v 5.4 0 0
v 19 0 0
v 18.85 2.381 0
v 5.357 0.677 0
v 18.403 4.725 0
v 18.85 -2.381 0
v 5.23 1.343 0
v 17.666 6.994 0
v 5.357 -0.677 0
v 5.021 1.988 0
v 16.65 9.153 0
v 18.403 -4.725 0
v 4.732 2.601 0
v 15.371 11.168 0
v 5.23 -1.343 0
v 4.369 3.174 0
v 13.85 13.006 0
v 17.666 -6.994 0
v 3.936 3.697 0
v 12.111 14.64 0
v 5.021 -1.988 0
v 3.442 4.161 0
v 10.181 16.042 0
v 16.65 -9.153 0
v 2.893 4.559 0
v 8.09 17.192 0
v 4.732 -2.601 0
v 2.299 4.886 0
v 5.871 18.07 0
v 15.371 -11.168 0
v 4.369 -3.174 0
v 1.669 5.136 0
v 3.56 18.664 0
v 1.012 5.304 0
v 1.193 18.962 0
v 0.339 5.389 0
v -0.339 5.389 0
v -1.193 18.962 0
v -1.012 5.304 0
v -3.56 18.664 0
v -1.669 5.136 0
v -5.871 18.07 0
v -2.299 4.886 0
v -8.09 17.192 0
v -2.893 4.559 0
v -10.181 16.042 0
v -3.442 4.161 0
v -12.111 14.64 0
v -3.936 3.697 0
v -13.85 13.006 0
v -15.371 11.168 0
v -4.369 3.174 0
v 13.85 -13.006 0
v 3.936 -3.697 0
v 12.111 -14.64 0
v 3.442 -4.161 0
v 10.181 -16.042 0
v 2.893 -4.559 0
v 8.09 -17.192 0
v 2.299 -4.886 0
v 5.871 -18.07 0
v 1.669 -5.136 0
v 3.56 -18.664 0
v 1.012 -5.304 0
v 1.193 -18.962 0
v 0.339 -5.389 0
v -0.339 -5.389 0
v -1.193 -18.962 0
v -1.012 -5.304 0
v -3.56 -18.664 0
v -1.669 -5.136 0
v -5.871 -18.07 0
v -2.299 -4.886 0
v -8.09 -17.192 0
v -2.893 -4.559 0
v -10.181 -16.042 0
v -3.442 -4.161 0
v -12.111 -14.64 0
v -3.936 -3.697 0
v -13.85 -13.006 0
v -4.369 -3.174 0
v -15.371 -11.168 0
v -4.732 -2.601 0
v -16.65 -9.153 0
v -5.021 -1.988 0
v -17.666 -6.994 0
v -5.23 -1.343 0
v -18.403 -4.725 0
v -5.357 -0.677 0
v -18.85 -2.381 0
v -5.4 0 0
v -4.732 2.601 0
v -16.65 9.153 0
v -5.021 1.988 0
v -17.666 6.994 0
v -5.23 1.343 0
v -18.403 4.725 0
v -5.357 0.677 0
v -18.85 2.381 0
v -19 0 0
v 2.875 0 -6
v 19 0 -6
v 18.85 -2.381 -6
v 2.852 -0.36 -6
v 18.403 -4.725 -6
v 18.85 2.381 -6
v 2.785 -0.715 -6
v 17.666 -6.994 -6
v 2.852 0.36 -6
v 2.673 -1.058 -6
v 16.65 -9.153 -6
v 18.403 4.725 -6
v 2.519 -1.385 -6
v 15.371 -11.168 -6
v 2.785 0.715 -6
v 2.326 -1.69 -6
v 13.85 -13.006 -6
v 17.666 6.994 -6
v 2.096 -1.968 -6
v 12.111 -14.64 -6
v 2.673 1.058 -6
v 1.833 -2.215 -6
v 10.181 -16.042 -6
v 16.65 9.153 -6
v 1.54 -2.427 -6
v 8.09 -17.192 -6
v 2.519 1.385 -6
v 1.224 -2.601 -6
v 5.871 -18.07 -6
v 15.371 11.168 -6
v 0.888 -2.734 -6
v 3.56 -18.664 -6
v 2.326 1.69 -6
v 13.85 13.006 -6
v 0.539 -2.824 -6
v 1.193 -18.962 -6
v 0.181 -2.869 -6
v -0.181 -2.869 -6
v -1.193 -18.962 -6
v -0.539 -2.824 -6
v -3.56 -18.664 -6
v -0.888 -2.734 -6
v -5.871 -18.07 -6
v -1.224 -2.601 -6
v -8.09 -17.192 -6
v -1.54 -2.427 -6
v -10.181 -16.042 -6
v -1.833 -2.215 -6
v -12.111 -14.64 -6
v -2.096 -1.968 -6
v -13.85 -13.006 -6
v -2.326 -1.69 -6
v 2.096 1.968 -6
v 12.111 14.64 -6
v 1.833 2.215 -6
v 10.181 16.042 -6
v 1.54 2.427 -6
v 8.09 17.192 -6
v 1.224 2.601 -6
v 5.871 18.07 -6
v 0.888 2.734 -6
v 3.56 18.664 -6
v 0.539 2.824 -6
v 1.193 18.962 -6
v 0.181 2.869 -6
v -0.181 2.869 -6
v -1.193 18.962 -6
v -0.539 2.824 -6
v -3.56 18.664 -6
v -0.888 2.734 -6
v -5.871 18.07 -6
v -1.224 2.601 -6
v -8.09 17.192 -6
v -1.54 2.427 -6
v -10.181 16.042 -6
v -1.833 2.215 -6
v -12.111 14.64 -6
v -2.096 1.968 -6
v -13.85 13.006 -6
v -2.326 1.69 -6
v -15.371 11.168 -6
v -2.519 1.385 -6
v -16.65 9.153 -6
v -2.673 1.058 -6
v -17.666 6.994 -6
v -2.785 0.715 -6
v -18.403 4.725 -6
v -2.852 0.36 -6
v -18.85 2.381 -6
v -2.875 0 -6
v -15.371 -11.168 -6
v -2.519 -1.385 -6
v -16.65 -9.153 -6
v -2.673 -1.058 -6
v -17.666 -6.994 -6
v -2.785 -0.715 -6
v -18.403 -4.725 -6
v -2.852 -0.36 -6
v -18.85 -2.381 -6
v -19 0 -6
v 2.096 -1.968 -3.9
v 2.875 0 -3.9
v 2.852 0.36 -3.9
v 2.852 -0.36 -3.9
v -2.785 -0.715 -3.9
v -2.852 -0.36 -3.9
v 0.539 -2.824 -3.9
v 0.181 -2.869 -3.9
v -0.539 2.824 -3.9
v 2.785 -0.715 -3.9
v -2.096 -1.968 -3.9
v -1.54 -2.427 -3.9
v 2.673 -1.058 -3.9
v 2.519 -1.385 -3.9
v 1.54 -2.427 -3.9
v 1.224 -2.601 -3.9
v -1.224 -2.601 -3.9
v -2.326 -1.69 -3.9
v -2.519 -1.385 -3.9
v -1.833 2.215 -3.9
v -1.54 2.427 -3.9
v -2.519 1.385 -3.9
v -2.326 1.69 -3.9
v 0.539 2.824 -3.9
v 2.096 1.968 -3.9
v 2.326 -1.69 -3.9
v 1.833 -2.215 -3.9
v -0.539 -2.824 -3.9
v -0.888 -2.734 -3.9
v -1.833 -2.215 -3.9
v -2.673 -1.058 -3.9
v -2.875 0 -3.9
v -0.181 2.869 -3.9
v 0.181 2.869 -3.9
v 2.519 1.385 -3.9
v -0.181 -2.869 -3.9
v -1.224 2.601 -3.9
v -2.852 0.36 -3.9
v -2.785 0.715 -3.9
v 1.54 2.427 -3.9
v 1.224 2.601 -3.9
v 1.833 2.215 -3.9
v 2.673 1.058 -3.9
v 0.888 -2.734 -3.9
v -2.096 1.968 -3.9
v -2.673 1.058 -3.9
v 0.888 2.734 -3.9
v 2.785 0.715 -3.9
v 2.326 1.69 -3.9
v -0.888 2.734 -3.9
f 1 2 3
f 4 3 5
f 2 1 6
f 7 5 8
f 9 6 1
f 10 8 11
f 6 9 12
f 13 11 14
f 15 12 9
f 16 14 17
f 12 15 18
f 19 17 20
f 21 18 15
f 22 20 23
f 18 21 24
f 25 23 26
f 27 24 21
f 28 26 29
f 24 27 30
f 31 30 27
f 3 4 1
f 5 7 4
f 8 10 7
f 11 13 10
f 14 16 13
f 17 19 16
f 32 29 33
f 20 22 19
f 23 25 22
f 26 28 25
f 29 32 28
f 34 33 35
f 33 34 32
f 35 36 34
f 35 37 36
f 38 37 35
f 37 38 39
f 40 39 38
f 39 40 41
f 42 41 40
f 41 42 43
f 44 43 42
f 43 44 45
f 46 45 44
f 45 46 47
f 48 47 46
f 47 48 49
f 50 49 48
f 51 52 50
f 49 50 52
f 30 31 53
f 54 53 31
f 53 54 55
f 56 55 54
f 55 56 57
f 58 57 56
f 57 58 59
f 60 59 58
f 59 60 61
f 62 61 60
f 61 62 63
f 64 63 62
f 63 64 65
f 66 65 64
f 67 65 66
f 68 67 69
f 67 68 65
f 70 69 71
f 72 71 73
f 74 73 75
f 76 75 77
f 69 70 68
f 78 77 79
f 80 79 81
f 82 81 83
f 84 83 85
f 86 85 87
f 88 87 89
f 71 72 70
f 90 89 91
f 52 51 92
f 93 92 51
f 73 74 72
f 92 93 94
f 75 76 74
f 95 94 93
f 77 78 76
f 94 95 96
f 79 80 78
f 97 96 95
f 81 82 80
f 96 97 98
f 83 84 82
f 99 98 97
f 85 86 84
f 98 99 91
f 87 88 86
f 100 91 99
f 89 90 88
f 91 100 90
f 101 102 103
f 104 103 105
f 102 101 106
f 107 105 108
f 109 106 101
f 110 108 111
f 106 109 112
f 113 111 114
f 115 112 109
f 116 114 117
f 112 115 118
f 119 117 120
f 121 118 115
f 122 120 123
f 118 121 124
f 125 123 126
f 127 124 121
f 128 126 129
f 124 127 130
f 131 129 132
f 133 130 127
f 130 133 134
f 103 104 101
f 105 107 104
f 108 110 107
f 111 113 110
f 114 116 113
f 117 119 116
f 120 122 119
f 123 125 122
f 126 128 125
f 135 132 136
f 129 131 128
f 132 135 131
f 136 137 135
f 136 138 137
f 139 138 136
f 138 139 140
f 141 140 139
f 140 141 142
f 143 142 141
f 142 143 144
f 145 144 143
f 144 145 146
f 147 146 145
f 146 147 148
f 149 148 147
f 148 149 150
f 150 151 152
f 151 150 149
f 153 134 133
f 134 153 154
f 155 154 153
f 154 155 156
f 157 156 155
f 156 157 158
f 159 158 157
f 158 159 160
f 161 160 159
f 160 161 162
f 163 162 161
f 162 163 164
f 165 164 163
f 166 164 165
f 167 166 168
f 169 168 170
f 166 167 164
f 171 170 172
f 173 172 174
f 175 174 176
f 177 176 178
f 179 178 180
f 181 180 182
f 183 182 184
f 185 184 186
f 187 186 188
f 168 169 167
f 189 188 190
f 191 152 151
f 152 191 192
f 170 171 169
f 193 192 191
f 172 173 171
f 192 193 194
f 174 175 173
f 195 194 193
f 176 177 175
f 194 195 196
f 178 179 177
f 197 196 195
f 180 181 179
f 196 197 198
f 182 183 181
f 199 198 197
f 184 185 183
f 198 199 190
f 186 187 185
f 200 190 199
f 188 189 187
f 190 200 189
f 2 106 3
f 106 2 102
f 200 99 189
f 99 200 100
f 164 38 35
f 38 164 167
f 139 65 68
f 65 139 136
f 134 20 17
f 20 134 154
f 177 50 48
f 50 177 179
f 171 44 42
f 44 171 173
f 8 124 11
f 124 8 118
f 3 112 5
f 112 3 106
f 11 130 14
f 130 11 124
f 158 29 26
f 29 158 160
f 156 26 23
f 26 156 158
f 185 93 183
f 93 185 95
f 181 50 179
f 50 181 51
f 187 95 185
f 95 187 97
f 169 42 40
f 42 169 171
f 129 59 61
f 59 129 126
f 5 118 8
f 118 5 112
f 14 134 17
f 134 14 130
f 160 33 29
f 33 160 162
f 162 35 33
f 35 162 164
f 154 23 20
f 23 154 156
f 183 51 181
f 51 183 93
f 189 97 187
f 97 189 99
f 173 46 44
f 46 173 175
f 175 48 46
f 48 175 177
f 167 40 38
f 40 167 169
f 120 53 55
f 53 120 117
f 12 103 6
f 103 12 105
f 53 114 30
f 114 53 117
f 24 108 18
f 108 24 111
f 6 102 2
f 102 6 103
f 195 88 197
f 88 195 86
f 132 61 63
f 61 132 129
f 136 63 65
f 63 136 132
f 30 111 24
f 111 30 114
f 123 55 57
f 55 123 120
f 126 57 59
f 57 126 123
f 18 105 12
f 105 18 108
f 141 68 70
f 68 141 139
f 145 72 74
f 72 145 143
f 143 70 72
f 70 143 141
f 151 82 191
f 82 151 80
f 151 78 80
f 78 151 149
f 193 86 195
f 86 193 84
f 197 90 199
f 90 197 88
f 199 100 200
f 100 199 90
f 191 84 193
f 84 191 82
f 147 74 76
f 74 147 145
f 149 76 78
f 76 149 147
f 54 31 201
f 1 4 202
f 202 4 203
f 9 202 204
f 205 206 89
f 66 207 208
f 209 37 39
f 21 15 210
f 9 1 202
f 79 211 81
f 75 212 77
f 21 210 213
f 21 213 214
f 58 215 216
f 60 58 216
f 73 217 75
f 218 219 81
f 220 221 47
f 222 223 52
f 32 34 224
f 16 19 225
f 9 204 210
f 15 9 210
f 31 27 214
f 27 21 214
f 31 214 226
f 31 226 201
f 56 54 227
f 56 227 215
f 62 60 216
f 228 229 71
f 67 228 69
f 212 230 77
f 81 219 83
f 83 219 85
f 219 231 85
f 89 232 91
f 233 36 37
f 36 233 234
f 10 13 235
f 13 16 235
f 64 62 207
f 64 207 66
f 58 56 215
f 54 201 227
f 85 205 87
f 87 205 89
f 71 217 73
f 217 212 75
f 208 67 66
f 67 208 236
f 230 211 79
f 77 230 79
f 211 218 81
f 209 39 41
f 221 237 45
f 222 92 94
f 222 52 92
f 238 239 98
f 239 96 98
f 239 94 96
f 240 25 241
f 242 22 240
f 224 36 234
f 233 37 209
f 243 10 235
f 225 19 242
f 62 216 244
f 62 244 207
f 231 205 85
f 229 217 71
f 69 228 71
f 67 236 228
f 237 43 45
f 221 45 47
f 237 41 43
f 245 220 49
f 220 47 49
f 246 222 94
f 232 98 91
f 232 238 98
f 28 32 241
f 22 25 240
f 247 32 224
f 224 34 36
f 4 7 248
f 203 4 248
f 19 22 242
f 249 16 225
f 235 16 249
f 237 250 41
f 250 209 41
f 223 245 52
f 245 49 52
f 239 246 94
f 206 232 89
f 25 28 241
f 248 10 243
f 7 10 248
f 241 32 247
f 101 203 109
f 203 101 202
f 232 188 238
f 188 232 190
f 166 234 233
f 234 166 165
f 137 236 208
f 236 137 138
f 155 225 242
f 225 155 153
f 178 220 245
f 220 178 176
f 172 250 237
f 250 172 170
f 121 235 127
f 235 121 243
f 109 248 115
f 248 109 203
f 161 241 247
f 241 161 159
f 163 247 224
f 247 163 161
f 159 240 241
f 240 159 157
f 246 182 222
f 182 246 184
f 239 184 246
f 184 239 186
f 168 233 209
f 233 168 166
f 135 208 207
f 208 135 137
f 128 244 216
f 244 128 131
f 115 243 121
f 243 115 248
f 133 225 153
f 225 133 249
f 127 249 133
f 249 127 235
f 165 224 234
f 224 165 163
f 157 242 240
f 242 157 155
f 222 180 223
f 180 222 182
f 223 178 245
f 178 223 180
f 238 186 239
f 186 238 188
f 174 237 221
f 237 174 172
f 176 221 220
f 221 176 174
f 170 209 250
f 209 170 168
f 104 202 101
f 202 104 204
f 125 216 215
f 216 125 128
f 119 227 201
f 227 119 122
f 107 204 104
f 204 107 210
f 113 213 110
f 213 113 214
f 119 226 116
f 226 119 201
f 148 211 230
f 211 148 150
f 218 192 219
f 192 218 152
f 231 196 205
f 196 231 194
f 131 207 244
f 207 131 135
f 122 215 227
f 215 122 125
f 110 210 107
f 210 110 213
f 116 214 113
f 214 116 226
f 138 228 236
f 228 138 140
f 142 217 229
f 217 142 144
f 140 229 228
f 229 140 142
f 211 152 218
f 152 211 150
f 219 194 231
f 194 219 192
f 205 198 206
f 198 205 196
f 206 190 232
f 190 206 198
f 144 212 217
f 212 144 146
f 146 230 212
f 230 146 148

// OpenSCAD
$fn = 50;


difference() {
	union() {
		translate(v = [0, 0, -6.0000000000]) {
			cylinder(h = 6, r = 10.0000000000);
		}
		translate(v = [0, 0, -6.0000000000]) {
			cylinder(h = 6, r = 19.0000000000);
		}
	}
	union() {
		translate(v = [0, 0, 0]) {
			rotate(a = [0, 0, 0]) {
				difference() {
					union() {
						#translate(v = [0, 0, -6.0000000000]) {
							cylinder(h = 6, r = 2.6000000000);
						}
						#translate(v = [0, 0, -3.9000000000]) {
							cylinder(h = 3.9000000000, r = 10.0000000000, r1 = 2.8750000000, r2 = 5.4000000000);
						}
						#translate(v = [0, 0, -6.0000000000]) {
							cylinder(h = 6, r = 2.8750000000);
						}
						#translate(v = [0, 0, -6.0000000000]) {
							cylinder(h = 6, r = 2.6000000000);
						}
					}
					union();
				}
			}
		}
	}
}
